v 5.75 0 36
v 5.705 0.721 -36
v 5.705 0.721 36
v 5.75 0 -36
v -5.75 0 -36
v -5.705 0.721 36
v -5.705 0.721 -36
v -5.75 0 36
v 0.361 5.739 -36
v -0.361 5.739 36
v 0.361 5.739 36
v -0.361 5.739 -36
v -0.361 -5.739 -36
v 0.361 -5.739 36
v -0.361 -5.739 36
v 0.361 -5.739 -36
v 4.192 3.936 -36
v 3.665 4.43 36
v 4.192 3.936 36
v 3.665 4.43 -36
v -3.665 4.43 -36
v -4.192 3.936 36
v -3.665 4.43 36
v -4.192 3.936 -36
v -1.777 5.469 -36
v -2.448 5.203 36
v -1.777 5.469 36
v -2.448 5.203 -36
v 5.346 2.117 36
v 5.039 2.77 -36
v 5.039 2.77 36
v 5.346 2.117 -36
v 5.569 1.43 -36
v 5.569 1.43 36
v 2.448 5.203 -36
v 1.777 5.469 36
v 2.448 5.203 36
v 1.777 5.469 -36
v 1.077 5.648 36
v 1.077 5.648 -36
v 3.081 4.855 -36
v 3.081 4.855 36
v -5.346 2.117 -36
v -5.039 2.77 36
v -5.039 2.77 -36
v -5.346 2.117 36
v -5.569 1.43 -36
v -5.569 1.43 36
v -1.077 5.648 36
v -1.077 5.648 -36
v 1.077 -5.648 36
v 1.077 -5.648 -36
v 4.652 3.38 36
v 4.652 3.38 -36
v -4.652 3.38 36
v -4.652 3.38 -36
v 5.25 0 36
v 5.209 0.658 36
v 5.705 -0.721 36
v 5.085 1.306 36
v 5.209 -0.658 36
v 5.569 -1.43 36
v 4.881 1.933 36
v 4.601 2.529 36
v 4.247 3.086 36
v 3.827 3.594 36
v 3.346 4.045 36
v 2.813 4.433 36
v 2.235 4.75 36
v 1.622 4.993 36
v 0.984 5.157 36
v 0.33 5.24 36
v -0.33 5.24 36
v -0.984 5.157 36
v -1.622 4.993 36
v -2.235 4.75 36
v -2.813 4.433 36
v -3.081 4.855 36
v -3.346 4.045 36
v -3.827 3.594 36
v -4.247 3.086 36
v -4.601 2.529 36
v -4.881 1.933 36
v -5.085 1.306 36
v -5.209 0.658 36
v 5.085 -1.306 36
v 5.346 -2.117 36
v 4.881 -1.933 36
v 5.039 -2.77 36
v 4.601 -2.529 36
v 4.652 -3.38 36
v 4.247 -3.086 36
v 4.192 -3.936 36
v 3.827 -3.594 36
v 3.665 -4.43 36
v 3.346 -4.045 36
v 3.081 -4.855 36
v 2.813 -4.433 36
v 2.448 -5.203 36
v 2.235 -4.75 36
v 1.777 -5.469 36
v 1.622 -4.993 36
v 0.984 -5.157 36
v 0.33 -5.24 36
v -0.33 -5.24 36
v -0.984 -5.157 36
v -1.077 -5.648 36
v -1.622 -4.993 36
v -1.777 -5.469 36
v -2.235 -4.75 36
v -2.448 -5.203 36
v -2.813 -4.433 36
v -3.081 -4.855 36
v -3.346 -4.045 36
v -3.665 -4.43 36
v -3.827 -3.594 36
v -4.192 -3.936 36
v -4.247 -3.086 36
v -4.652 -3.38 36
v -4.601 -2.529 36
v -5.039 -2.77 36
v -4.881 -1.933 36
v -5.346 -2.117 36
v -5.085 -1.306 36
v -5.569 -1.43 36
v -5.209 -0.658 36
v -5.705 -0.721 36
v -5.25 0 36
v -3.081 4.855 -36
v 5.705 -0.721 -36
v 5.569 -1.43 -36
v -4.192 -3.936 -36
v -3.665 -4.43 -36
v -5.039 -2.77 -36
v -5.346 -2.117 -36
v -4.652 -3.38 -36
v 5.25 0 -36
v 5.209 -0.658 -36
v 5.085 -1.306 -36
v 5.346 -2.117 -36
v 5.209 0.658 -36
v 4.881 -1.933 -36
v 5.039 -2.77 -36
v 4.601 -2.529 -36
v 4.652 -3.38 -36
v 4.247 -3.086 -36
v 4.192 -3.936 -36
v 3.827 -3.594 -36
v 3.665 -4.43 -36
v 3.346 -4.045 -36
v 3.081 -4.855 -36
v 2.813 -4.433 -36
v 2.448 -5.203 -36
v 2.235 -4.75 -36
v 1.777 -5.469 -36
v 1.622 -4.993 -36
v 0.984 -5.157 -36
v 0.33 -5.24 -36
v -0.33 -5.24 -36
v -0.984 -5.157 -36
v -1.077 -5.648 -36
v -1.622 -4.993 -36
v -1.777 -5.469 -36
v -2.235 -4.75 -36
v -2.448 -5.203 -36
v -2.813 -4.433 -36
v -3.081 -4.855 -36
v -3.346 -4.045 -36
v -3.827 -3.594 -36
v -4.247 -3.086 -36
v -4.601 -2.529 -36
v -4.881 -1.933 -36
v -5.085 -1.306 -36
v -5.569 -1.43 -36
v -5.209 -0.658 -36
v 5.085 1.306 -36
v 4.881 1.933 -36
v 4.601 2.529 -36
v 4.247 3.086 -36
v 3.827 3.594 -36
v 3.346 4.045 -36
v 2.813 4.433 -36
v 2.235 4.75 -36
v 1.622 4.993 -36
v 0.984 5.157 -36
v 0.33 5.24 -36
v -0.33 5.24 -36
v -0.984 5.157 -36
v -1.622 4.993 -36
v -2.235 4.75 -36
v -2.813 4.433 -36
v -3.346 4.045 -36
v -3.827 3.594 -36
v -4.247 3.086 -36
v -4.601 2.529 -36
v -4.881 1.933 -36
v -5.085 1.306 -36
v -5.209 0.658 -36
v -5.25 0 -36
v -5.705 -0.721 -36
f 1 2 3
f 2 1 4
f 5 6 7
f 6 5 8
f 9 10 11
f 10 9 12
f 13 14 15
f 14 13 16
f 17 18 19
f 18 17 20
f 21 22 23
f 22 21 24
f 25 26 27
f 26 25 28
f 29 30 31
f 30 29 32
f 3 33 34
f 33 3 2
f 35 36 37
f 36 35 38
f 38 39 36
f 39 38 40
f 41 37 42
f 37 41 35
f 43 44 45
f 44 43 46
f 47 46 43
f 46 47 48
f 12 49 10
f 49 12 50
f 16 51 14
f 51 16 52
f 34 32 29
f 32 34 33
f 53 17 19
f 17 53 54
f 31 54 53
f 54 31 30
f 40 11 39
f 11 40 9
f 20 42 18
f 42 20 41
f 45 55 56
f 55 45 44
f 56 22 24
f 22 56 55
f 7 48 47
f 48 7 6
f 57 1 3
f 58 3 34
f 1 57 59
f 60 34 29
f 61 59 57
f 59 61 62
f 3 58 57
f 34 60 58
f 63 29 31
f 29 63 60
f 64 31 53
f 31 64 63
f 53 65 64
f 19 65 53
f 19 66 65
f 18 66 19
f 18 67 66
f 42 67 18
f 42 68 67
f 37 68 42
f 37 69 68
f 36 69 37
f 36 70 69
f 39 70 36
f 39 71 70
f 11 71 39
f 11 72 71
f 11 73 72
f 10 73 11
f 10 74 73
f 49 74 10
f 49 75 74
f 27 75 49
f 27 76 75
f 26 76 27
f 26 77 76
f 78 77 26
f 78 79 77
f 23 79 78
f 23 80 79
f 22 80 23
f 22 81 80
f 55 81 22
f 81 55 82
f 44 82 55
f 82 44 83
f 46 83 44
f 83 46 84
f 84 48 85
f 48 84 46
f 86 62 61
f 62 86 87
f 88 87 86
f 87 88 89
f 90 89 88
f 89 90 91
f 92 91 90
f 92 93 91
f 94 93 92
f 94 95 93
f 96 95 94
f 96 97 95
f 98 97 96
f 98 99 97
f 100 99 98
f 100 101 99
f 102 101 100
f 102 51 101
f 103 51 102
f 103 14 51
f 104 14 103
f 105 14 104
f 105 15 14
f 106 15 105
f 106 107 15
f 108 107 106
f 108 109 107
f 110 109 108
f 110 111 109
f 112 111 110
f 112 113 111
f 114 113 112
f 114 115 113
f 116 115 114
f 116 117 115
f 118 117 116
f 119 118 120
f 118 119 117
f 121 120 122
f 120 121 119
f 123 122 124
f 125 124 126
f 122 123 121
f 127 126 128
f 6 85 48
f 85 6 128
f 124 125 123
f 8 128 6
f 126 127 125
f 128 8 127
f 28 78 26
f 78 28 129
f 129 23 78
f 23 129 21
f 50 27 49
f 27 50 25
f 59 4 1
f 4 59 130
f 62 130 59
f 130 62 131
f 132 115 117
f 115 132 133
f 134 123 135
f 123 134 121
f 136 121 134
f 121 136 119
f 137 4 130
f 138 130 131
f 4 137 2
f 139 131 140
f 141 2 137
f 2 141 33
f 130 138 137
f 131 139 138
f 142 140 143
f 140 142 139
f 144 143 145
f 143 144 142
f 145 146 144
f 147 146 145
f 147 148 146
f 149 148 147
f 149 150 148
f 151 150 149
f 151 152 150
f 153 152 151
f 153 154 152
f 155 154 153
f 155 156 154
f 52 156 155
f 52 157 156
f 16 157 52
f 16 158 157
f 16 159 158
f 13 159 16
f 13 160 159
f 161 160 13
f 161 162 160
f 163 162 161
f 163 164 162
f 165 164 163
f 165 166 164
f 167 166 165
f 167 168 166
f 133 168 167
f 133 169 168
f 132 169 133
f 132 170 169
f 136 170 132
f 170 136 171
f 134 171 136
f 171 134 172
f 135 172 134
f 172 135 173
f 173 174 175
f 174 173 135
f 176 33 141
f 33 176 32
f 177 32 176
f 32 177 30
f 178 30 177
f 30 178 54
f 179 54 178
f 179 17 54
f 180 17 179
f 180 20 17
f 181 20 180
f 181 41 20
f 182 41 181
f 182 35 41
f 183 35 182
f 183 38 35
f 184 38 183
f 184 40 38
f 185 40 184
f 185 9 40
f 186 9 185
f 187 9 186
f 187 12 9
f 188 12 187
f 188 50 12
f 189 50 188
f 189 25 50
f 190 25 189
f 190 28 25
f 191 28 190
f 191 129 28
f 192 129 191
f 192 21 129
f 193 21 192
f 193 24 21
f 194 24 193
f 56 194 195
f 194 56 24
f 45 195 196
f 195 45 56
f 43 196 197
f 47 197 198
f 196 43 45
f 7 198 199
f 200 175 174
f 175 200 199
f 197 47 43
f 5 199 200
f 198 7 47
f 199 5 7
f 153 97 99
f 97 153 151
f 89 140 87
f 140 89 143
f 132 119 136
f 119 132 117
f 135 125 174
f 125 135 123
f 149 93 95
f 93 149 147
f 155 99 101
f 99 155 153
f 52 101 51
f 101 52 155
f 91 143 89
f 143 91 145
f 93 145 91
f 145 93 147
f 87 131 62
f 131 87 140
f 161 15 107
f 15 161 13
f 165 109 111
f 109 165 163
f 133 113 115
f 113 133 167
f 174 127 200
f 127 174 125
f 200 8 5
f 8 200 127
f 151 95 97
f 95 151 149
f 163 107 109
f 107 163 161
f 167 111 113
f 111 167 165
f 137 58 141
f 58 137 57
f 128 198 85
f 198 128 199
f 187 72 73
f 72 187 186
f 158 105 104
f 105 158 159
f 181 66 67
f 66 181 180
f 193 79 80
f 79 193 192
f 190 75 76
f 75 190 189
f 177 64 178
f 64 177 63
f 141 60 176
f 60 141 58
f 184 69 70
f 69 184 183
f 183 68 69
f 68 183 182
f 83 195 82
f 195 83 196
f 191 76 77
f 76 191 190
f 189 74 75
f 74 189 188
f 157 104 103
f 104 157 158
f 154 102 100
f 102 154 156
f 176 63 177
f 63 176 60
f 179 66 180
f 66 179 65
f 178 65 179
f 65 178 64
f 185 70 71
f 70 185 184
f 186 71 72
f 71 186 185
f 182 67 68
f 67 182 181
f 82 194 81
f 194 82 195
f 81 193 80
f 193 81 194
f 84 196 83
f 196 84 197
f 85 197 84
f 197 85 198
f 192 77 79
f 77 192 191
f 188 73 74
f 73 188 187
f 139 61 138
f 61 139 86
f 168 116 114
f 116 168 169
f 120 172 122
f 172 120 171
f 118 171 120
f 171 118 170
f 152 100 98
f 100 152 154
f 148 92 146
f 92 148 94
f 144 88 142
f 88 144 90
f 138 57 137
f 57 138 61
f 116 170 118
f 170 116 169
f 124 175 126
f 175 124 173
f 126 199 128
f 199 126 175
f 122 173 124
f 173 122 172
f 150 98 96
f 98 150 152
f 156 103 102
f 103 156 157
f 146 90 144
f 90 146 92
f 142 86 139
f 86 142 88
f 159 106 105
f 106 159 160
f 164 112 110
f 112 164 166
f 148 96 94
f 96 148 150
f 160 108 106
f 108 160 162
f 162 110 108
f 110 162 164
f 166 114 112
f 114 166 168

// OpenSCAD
$fn = 50;


difference() {
	union() {
		translate(v = [0, 0, -36.0000000000]) {
			cylinder(h = 72, r = 5.7500000000);
		}
	}
	union() {
		translate(v = [0, 0, -100.0000000000]) {
			cylinder(h = 200, r = 5.2500000000);
		}
	}
}
